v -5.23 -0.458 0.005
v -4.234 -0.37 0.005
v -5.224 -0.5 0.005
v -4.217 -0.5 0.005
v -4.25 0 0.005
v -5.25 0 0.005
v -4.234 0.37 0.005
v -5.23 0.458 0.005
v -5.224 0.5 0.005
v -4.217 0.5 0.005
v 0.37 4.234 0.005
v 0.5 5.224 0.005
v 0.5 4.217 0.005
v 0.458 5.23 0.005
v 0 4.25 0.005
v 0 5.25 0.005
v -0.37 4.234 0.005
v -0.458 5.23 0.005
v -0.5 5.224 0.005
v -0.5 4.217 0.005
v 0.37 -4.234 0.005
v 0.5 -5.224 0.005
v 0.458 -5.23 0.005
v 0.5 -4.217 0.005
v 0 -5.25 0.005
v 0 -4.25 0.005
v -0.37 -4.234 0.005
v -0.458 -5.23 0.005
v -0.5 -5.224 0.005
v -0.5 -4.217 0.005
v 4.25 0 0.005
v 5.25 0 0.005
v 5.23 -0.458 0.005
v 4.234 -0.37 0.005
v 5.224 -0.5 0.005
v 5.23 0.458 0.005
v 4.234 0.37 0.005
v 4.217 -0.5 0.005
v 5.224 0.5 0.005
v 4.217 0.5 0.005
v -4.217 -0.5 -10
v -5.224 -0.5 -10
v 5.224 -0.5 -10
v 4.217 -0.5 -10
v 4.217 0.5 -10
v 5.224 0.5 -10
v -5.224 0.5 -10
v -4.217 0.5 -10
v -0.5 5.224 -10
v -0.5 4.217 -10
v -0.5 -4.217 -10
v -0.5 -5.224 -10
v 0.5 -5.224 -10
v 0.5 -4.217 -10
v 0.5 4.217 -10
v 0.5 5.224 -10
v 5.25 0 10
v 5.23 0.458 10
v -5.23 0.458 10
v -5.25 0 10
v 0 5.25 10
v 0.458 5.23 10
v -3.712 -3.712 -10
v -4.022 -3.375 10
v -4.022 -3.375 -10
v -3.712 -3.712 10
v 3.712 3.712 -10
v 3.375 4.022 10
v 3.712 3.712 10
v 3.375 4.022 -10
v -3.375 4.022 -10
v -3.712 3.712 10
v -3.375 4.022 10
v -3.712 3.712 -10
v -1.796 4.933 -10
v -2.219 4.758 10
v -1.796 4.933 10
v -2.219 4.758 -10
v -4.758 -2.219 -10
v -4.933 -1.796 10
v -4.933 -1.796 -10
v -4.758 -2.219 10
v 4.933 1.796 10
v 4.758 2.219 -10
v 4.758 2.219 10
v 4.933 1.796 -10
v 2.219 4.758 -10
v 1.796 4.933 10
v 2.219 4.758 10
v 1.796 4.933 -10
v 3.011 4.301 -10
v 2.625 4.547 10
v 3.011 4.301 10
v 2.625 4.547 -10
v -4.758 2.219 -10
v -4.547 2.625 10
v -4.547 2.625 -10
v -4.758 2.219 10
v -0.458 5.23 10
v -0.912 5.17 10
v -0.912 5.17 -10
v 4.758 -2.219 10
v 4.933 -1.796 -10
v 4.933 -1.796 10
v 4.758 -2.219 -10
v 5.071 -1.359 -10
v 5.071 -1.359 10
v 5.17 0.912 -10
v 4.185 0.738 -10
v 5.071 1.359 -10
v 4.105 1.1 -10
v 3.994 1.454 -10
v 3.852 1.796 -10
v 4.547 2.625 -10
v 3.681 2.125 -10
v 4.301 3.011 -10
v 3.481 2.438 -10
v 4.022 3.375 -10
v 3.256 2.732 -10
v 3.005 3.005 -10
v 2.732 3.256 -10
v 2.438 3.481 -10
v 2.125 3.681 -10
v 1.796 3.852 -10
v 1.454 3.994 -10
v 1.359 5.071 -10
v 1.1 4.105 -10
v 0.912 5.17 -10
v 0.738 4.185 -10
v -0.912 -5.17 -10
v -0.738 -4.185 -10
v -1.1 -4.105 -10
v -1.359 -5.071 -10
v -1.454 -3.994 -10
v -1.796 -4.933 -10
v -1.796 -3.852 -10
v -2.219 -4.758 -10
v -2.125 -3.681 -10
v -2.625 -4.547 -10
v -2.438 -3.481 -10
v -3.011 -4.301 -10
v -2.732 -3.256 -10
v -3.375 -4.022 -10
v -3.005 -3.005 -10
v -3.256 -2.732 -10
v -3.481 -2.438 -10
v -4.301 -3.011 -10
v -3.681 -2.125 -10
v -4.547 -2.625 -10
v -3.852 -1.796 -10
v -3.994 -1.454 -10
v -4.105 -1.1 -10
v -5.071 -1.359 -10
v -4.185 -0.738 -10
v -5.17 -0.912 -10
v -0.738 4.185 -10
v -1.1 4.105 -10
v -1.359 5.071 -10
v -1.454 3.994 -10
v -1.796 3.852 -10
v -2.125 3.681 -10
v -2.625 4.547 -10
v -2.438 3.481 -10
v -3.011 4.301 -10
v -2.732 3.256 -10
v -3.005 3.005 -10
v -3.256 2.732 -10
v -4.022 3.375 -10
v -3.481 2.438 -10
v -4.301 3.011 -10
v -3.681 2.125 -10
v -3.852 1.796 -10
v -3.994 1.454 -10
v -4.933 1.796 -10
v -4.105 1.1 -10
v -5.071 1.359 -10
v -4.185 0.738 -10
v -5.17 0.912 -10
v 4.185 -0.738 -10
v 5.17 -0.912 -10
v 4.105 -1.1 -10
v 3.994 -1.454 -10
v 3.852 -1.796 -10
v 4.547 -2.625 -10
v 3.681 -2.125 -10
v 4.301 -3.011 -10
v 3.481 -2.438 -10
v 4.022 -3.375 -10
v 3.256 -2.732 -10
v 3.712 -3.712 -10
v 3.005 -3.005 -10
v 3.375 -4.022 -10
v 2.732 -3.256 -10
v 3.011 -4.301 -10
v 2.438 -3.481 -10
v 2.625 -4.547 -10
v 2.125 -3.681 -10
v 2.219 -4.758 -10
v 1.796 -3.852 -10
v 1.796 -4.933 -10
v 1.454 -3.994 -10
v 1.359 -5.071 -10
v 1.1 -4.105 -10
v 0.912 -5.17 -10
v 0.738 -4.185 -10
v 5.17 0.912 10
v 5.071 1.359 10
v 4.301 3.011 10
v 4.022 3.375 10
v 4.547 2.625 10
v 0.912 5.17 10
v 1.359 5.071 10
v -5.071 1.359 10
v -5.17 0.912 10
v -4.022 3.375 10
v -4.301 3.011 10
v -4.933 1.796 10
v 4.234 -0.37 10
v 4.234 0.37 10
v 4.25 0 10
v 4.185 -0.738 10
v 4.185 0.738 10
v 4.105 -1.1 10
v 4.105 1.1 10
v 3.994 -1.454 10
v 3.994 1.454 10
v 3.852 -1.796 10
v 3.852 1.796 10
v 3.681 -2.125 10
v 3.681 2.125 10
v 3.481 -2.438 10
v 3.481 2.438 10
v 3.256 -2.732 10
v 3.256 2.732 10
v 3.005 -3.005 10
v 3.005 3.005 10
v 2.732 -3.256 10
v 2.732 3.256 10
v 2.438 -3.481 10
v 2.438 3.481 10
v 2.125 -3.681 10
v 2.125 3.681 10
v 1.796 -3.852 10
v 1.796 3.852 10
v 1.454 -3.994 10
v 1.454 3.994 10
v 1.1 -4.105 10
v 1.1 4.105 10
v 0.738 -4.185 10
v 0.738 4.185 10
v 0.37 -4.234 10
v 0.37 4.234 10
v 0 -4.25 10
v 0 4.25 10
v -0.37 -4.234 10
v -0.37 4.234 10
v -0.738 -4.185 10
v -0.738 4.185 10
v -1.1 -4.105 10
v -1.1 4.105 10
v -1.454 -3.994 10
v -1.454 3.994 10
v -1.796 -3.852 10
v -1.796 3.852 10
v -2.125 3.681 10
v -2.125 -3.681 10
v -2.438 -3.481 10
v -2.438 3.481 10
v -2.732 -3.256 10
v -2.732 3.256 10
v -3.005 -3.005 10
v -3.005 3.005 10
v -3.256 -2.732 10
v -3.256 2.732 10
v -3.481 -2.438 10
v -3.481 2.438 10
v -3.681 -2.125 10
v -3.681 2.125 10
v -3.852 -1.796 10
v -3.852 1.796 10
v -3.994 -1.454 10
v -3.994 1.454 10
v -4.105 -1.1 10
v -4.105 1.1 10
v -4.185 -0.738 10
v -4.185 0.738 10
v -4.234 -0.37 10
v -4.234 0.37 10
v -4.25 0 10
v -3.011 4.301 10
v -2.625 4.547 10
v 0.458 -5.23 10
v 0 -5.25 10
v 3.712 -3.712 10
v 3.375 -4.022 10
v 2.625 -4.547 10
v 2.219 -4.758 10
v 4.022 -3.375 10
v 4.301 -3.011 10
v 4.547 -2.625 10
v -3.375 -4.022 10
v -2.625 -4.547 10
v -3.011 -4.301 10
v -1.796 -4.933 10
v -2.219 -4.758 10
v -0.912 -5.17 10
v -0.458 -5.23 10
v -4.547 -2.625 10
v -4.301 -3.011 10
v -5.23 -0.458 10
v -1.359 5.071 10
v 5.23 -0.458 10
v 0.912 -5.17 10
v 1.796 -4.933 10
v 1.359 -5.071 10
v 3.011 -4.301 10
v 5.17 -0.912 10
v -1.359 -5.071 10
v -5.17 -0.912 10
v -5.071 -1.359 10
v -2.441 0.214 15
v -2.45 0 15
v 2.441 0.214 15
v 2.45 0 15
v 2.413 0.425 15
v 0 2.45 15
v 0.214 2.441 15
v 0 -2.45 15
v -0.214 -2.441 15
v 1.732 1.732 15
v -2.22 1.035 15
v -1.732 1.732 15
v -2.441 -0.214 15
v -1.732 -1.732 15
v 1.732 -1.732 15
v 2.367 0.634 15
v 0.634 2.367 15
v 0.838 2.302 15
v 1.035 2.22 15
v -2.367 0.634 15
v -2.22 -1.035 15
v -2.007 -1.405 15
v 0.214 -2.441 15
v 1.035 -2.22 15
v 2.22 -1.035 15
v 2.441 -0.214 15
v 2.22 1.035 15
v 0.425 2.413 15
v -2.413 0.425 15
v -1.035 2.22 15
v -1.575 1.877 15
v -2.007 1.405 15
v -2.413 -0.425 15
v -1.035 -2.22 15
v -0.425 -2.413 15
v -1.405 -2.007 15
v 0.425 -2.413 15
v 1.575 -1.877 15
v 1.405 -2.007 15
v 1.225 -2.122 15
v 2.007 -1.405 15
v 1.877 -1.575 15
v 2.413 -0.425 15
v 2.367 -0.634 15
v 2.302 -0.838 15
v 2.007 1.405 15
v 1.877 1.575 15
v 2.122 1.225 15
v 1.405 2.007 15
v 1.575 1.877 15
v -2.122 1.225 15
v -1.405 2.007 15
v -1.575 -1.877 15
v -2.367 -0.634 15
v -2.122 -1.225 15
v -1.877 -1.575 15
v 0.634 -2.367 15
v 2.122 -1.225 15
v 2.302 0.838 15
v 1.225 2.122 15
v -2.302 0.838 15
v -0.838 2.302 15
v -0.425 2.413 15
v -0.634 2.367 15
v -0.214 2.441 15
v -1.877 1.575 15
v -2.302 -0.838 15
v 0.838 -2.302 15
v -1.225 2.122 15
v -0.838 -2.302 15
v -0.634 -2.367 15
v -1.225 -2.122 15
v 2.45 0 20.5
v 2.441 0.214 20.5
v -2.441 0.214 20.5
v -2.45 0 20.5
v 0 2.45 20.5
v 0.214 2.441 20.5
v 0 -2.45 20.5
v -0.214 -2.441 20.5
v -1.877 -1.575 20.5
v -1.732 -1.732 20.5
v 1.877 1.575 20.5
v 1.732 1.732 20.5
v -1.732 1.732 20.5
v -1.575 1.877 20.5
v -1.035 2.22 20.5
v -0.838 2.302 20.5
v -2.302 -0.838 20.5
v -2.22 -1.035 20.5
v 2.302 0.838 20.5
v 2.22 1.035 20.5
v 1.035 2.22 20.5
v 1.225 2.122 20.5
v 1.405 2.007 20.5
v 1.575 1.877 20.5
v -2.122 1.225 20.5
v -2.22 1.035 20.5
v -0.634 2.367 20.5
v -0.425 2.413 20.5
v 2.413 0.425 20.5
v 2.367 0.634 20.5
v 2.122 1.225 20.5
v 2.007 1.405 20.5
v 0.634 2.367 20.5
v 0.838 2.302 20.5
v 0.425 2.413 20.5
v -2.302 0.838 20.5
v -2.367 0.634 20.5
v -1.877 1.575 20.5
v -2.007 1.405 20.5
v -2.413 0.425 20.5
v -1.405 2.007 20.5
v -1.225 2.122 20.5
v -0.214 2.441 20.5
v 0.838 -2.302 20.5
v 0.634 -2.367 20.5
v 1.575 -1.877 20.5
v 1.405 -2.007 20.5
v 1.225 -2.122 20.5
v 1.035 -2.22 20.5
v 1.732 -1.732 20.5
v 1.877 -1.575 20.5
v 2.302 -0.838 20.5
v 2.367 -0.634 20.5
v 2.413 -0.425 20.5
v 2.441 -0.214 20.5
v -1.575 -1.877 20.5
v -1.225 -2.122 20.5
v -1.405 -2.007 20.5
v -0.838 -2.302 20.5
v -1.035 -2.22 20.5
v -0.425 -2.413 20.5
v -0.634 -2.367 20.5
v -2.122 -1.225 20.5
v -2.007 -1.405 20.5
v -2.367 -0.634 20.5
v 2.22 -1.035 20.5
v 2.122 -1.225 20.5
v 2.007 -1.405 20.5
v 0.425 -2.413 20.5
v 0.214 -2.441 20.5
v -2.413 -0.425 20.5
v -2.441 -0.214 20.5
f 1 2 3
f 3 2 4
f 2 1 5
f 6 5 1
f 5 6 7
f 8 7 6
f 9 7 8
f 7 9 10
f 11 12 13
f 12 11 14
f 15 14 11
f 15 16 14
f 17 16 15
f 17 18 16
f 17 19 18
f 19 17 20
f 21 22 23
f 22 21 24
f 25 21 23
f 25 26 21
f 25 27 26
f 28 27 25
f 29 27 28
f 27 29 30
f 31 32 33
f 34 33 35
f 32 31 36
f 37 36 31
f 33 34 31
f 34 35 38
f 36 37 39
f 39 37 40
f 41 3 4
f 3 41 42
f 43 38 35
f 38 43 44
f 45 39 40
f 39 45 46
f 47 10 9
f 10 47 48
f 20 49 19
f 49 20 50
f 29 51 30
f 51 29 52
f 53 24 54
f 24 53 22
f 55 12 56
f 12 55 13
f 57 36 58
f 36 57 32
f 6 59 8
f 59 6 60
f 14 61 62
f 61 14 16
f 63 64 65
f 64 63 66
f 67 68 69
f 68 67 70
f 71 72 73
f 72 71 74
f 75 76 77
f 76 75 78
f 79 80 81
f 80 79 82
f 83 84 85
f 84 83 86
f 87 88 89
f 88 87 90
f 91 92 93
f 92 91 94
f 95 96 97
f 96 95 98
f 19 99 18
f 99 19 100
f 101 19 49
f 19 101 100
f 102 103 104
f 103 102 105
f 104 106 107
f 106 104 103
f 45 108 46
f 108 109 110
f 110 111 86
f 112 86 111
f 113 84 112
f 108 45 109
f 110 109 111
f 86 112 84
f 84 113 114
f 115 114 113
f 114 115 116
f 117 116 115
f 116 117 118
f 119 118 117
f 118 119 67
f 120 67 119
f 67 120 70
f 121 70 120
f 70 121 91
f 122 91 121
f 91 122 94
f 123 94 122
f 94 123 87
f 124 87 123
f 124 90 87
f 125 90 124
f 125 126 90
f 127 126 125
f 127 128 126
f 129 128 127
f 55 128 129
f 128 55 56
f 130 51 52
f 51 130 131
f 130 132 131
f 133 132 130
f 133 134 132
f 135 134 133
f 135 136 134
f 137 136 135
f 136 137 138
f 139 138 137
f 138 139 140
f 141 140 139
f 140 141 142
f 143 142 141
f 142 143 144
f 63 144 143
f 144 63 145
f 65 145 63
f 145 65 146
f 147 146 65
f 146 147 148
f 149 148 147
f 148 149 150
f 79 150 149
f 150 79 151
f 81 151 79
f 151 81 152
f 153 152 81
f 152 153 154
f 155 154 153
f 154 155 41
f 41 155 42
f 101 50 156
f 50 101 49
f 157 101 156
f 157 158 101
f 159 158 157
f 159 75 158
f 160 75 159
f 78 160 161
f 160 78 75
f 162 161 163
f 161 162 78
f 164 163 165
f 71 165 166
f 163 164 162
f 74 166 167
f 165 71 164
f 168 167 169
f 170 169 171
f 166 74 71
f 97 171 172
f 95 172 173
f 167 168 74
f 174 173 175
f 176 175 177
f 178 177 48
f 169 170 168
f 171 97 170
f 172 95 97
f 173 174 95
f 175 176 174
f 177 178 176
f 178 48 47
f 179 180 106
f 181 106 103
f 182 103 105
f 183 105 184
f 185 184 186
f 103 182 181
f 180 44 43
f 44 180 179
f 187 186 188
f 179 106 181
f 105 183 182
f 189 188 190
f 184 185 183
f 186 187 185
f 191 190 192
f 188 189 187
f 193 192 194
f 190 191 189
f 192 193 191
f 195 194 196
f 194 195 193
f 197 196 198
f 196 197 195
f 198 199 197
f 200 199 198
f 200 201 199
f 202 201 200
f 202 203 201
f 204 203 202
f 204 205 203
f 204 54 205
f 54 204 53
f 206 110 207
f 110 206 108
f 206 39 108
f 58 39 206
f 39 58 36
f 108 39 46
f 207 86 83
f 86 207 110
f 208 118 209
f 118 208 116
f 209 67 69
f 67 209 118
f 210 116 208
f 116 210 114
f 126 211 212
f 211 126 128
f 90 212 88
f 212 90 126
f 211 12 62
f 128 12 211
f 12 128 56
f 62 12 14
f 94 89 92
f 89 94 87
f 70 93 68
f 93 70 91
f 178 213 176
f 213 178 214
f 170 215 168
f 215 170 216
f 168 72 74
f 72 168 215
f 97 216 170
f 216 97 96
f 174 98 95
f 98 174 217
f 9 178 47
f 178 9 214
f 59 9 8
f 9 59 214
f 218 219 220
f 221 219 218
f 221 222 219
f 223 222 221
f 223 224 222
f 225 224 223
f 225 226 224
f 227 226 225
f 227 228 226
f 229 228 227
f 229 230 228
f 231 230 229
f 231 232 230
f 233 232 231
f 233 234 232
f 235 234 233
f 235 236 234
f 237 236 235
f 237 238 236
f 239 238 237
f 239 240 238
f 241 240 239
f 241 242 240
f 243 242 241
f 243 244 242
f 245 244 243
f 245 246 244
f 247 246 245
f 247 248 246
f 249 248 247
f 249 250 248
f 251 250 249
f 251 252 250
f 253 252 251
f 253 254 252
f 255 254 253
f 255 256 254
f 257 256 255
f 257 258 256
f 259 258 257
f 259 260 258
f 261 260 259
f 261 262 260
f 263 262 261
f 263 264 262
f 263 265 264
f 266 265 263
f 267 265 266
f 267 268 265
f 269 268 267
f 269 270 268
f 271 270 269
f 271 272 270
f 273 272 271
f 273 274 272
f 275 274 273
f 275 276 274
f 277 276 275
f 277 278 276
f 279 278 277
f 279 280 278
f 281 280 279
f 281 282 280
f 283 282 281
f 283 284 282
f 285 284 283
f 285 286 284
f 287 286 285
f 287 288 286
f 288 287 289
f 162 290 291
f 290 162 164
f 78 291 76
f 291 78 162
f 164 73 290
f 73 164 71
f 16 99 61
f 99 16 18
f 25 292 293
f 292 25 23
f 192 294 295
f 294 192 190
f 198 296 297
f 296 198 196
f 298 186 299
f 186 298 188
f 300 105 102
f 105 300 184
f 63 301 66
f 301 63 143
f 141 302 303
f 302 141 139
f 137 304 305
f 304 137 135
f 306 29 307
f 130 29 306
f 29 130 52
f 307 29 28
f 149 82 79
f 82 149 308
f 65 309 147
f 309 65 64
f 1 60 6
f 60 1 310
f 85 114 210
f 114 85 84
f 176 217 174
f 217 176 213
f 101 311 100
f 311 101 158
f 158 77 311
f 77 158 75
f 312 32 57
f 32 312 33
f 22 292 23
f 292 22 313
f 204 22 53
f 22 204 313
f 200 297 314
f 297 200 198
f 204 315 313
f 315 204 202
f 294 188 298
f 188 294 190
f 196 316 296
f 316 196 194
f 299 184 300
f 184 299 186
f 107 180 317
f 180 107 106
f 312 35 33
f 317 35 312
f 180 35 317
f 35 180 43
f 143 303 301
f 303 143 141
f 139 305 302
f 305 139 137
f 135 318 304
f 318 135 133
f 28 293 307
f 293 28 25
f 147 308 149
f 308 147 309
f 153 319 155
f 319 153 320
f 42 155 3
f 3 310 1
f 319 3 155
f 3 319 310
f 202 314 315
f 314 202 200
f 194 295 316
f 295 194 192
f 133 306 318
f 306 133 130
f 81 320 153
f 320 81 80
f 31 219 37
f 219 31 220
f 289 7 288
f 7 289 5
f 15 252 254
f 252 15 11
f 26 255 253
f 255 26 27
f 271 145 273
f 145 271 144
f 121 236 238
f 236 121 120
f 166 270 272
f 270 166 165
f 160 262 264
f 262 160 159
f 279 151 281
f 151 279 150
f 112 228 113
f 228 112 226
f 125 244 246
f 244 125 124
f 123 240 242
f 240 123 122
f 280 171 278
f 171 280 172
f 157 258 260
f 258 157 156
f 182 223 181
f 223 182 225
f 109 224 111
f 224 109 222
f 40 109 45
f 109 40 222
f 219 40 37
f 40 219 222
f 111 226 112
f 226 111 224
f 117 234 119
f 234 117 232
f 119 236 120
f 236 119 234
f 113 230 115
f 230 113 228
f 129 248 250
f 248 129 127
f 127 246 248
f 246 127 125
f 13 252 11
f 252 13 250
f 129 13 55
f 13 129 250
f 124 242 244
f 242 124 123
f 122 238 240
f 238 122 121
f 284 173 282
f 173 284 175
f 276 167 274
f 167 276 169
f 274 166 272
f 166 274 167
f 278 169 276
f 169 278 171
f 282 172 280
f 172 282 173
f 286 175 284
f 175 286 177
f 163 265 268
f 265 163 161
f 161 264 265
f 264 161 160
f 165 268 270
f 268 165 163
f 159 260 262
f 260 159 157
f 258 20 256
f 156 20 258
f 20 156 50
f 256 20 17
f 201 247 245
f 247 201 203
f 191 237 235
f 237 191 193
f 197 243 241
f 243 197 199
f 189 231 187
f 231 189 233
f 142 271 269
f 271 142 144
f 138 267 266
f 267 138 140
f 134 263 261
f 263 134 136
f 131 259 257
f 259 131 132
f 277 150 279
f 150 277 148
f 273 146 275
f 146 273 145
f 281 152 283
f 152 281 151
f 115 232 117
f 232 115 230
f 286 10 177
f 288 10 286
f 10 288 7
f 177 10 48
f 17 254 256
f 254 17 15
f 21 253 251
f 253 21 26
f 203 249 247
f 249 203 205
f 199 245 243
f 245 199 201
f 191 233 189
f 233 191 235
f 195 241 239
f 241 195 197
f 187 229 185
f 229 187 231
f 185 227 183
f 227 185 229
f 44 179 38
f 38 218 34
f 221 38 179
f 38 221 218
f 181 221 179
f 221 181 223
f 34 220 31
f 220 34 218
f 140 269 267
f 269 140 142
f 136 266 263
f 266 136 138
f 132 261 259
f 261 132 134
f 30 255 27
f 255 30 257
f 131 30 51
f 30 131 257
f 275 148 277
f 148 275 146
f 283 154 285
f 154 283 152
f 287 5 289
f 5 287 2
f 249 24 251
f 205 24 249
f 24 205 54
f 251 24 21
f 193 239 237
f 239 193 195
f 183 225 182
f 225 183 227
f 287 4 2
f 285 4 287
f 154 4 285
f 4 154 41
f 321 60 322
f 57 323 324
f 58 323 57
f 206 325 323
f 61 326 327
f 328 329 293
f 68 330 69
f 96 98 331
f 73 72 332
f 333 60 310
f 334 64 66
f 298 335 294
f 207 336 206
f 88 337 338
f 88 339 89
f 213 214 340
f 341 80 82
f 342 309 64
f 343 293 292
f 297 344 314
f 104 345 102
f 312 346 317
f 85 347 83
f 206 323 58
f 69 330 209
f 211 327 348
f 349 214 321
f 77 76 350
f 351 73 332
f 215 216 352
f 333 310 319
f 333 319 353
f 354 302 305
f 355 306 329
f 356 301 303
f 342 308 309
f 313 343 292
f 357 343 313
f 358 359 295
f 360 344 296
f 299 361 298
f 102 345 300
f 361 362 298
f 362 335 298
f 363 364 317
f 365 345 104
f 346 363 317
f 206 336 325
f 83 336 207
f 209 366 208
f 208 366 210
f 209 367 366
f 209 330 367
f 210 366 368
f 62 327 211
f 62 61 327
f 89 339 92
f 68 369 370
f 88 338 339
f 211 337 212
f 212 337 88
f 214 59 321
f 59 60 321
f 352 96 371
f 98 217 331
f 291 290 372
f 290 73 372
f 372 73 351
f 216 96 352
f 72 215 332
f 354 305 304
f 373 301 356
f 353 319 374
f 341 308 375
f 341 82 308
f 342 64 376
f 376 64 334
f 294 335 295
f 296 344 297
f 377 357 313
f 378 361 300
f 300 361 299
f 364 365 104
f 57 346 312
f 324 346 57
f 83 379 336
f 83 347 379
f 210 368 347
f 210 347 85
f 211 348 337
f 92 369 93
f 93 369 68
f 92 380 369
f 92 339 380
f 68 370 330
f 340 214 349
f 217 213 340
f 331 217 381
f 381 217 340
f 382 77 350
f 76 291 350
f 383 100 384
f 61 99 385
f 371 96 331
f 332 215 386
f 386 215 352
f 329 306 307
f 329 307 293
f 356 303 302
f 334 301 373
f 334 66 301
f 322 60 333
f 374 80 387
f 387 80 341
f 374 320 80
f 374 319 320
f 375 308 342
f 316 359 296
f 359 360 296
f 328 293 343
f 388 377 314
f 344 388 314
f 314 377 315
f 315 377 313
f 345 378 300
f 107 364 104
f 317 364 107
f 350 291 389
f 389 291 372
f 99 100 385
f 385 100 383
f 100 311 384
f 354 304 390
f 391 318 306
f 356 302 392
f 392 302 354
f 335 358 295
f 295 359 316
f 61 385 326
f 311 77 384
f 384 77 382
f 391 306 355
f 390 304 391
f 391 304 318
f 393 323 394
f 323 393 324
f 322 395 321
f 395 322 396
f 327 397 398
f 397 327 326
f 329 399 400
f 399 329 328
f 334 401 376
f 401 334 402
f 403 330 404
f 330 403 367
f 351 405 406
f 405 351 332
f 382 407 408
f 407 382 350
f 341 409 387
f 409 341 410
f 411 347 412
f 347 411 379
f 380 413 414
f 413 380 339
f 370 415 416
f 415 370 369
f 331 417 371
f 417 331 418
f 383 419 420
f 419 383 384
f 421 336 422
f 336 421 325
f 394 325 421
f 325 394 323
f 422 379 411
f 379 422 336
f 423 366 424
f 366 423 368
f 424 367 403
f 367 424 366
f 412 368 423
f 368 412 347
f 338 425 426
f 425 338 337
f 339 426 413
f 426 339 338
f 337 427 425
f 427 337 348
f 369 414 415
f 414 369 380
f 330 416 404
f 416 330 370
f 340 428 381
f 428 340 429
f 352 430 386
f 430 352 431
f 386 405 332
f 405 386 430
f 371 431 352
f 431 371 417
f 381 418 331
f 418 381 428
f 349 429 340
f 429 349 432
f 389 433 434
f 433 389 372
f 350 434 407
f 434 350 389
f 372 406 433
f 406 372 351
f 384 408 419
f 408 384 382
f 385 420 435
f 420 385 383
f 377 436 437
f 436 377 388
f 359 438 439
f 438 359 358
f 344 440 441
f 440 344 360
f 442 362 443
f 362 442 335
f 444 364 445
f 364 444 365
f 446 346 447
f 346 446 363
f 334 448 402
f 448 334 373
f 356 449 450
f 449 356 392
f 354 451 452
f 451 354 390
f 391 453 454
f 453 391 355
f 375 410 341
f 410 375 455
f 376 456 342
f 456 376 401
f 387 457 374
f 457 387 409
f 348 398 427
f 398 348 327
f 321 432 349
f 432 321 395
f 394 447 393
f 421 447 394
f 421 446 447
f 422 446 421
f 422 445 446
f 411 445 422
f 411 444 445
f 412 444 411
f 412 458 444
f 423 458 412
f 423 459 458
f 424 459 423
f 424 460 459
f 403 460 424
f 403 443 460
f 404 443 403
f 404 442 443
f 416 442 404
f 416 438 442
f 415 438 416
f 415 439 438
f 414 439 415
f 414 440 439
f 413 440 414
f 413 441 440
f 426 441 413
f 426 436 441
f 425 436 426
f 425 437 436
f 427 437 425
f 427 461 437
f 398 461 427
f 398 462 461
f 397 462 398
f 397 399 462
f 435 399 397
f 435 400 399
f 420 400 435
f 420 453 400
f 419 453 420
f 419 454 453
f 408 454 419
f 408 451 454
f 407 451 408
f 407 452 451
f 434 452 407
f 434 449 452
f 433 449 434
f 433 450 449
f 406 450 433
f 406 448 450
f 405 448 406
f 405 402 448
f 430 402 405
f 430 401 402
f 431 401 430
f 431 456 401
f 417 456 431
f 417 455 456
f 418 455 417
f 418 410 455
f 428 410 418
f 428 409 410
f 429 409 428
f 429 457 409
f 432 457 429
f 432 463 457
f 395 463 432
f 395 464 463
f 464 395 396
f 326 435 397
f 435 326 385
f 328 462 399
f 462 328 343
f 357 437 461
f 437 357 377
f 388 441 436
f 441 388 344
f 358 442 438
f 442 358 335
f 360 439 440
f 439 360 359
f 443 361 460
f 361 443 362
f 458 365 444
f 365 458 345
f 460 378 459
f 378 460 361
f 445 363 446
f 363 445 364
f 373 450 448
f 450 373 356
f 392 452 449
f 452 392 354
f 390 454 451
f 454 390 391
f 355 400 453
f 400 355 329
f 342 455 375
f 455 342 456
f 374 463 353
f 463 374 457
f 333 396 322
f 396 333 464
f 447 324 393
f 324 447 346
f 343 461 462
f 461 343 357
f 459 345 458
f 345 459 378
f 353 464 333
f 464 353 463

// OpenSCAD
$fa=5; $fs=0.1;

difference(){
    cylinder(h=20,r=5.25, center=true);

    {
     cylinder(h=20.02, r=4.25, center=true);
     translate([0,0,-5])
        {cube([11.01,1,10.01], center=true);
        rotate([0, 0, 90]) cube([11.01,1,10.01], center=true);}
    }

}

translate([0, 0, 12.5]) cylinder(h=5, r1=5.25, r2=2.45, center=true);
translate([0, 0, 16.5]) cylinder(h=8, r=2.45, center=true);
